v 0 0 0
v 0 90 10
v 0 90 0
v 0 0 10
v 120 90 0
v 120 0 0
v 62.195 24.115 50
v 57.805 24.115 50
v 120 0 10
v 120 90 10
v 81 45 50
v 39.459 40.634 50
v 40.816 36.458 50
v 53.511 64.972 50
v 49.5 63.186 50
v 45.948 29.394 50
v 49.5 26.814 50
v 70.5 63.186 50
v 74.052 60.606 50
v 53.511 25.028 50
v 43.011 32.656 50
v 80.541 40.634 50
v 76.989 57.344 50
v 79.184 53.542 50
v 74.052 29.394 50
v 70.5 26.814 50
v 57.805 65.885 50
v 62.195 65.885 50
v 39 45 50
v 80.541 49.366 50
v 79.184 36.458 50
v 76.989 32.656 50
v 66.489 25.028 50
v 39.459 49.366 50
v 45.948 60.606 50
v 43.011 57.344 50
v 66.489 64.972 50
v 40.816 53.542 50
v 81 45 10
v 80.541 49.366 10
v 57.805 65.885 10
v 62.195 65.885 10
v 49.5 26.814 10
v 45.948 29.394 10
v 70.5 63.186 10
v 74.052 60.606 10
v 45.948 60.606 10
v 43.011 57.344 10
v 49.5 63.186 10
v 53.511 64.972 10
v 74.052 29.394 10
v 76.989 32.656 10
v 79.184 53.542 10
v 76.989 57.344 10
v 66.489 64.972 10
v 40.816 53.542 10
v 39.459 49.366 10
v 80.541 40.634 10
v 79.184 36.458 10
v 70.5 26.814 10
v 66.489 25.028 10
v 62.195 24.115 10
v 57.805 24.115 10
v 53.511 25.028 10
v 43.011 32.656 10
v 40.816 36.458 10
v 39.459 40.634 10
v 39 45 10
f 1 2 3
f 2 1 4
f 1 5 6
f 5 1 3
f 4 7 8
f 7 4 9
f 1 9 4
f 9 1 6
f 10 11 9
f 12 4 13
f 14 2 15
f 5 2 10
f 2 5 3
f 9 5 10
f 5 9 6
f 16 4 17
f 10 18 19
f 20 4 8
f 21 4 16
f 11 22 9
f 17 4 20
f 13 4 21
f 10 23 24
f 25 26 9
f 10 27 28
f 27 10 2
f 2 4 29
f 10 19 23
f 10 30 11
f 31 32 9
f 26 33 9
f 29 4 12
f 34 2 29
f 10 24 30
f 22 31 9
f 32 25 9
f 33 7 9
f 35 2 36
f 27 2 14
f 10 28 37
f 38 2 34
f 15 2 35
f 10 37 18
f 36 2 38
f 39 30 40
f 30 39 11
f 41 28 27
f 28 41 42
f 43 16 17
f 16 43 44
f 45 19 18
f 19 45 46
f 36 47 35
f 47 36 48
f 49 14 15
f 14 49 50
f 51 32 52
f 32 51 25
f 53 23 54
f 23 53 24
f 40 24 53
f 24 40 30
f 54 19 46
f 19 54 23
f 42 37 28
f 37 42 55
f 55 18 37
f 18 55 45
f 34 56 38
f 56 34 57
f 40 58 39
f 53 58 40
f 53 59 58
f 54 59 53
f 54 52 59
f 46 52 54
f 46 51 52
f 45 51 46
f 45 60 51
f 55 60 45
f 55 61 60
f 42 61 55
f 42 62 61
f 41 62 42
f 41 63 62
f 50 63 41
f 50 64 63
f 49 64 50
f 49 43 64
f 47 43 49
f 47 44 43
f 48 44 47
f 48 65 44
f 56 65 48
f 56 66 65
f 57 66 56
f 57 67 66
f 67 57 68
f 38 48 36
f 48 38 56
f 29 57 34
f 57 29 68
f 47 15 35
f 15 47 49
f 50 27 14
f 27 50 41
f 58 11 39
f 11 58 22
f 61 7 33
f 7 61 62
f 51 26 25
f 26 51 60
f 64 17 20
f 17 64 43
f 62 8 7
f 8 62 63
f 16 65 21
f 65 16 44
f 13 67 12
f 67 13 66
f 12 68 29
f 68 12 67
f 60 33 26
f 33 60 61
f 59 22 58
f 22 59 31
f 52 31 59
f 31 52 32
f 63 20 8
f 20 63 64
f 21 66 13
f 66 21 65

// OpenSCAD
sponge_x=120;
sponge_y=90;
sponge_z=10;
mount=42;
mount_z=40;
pad=0.1;

difference() {
    hull() {
        cube([sponge_x,sponge_y,sponge_z]);
        translate([sponge_x/2,sponge_y/2,sponge_z])
        cylinder(h=mount_z,d=mount);
    }
    translate([sponge_x/2,sponge_y/2,sponge_z])
    cylinder(h=mount_z+pad,d=mount);
}
